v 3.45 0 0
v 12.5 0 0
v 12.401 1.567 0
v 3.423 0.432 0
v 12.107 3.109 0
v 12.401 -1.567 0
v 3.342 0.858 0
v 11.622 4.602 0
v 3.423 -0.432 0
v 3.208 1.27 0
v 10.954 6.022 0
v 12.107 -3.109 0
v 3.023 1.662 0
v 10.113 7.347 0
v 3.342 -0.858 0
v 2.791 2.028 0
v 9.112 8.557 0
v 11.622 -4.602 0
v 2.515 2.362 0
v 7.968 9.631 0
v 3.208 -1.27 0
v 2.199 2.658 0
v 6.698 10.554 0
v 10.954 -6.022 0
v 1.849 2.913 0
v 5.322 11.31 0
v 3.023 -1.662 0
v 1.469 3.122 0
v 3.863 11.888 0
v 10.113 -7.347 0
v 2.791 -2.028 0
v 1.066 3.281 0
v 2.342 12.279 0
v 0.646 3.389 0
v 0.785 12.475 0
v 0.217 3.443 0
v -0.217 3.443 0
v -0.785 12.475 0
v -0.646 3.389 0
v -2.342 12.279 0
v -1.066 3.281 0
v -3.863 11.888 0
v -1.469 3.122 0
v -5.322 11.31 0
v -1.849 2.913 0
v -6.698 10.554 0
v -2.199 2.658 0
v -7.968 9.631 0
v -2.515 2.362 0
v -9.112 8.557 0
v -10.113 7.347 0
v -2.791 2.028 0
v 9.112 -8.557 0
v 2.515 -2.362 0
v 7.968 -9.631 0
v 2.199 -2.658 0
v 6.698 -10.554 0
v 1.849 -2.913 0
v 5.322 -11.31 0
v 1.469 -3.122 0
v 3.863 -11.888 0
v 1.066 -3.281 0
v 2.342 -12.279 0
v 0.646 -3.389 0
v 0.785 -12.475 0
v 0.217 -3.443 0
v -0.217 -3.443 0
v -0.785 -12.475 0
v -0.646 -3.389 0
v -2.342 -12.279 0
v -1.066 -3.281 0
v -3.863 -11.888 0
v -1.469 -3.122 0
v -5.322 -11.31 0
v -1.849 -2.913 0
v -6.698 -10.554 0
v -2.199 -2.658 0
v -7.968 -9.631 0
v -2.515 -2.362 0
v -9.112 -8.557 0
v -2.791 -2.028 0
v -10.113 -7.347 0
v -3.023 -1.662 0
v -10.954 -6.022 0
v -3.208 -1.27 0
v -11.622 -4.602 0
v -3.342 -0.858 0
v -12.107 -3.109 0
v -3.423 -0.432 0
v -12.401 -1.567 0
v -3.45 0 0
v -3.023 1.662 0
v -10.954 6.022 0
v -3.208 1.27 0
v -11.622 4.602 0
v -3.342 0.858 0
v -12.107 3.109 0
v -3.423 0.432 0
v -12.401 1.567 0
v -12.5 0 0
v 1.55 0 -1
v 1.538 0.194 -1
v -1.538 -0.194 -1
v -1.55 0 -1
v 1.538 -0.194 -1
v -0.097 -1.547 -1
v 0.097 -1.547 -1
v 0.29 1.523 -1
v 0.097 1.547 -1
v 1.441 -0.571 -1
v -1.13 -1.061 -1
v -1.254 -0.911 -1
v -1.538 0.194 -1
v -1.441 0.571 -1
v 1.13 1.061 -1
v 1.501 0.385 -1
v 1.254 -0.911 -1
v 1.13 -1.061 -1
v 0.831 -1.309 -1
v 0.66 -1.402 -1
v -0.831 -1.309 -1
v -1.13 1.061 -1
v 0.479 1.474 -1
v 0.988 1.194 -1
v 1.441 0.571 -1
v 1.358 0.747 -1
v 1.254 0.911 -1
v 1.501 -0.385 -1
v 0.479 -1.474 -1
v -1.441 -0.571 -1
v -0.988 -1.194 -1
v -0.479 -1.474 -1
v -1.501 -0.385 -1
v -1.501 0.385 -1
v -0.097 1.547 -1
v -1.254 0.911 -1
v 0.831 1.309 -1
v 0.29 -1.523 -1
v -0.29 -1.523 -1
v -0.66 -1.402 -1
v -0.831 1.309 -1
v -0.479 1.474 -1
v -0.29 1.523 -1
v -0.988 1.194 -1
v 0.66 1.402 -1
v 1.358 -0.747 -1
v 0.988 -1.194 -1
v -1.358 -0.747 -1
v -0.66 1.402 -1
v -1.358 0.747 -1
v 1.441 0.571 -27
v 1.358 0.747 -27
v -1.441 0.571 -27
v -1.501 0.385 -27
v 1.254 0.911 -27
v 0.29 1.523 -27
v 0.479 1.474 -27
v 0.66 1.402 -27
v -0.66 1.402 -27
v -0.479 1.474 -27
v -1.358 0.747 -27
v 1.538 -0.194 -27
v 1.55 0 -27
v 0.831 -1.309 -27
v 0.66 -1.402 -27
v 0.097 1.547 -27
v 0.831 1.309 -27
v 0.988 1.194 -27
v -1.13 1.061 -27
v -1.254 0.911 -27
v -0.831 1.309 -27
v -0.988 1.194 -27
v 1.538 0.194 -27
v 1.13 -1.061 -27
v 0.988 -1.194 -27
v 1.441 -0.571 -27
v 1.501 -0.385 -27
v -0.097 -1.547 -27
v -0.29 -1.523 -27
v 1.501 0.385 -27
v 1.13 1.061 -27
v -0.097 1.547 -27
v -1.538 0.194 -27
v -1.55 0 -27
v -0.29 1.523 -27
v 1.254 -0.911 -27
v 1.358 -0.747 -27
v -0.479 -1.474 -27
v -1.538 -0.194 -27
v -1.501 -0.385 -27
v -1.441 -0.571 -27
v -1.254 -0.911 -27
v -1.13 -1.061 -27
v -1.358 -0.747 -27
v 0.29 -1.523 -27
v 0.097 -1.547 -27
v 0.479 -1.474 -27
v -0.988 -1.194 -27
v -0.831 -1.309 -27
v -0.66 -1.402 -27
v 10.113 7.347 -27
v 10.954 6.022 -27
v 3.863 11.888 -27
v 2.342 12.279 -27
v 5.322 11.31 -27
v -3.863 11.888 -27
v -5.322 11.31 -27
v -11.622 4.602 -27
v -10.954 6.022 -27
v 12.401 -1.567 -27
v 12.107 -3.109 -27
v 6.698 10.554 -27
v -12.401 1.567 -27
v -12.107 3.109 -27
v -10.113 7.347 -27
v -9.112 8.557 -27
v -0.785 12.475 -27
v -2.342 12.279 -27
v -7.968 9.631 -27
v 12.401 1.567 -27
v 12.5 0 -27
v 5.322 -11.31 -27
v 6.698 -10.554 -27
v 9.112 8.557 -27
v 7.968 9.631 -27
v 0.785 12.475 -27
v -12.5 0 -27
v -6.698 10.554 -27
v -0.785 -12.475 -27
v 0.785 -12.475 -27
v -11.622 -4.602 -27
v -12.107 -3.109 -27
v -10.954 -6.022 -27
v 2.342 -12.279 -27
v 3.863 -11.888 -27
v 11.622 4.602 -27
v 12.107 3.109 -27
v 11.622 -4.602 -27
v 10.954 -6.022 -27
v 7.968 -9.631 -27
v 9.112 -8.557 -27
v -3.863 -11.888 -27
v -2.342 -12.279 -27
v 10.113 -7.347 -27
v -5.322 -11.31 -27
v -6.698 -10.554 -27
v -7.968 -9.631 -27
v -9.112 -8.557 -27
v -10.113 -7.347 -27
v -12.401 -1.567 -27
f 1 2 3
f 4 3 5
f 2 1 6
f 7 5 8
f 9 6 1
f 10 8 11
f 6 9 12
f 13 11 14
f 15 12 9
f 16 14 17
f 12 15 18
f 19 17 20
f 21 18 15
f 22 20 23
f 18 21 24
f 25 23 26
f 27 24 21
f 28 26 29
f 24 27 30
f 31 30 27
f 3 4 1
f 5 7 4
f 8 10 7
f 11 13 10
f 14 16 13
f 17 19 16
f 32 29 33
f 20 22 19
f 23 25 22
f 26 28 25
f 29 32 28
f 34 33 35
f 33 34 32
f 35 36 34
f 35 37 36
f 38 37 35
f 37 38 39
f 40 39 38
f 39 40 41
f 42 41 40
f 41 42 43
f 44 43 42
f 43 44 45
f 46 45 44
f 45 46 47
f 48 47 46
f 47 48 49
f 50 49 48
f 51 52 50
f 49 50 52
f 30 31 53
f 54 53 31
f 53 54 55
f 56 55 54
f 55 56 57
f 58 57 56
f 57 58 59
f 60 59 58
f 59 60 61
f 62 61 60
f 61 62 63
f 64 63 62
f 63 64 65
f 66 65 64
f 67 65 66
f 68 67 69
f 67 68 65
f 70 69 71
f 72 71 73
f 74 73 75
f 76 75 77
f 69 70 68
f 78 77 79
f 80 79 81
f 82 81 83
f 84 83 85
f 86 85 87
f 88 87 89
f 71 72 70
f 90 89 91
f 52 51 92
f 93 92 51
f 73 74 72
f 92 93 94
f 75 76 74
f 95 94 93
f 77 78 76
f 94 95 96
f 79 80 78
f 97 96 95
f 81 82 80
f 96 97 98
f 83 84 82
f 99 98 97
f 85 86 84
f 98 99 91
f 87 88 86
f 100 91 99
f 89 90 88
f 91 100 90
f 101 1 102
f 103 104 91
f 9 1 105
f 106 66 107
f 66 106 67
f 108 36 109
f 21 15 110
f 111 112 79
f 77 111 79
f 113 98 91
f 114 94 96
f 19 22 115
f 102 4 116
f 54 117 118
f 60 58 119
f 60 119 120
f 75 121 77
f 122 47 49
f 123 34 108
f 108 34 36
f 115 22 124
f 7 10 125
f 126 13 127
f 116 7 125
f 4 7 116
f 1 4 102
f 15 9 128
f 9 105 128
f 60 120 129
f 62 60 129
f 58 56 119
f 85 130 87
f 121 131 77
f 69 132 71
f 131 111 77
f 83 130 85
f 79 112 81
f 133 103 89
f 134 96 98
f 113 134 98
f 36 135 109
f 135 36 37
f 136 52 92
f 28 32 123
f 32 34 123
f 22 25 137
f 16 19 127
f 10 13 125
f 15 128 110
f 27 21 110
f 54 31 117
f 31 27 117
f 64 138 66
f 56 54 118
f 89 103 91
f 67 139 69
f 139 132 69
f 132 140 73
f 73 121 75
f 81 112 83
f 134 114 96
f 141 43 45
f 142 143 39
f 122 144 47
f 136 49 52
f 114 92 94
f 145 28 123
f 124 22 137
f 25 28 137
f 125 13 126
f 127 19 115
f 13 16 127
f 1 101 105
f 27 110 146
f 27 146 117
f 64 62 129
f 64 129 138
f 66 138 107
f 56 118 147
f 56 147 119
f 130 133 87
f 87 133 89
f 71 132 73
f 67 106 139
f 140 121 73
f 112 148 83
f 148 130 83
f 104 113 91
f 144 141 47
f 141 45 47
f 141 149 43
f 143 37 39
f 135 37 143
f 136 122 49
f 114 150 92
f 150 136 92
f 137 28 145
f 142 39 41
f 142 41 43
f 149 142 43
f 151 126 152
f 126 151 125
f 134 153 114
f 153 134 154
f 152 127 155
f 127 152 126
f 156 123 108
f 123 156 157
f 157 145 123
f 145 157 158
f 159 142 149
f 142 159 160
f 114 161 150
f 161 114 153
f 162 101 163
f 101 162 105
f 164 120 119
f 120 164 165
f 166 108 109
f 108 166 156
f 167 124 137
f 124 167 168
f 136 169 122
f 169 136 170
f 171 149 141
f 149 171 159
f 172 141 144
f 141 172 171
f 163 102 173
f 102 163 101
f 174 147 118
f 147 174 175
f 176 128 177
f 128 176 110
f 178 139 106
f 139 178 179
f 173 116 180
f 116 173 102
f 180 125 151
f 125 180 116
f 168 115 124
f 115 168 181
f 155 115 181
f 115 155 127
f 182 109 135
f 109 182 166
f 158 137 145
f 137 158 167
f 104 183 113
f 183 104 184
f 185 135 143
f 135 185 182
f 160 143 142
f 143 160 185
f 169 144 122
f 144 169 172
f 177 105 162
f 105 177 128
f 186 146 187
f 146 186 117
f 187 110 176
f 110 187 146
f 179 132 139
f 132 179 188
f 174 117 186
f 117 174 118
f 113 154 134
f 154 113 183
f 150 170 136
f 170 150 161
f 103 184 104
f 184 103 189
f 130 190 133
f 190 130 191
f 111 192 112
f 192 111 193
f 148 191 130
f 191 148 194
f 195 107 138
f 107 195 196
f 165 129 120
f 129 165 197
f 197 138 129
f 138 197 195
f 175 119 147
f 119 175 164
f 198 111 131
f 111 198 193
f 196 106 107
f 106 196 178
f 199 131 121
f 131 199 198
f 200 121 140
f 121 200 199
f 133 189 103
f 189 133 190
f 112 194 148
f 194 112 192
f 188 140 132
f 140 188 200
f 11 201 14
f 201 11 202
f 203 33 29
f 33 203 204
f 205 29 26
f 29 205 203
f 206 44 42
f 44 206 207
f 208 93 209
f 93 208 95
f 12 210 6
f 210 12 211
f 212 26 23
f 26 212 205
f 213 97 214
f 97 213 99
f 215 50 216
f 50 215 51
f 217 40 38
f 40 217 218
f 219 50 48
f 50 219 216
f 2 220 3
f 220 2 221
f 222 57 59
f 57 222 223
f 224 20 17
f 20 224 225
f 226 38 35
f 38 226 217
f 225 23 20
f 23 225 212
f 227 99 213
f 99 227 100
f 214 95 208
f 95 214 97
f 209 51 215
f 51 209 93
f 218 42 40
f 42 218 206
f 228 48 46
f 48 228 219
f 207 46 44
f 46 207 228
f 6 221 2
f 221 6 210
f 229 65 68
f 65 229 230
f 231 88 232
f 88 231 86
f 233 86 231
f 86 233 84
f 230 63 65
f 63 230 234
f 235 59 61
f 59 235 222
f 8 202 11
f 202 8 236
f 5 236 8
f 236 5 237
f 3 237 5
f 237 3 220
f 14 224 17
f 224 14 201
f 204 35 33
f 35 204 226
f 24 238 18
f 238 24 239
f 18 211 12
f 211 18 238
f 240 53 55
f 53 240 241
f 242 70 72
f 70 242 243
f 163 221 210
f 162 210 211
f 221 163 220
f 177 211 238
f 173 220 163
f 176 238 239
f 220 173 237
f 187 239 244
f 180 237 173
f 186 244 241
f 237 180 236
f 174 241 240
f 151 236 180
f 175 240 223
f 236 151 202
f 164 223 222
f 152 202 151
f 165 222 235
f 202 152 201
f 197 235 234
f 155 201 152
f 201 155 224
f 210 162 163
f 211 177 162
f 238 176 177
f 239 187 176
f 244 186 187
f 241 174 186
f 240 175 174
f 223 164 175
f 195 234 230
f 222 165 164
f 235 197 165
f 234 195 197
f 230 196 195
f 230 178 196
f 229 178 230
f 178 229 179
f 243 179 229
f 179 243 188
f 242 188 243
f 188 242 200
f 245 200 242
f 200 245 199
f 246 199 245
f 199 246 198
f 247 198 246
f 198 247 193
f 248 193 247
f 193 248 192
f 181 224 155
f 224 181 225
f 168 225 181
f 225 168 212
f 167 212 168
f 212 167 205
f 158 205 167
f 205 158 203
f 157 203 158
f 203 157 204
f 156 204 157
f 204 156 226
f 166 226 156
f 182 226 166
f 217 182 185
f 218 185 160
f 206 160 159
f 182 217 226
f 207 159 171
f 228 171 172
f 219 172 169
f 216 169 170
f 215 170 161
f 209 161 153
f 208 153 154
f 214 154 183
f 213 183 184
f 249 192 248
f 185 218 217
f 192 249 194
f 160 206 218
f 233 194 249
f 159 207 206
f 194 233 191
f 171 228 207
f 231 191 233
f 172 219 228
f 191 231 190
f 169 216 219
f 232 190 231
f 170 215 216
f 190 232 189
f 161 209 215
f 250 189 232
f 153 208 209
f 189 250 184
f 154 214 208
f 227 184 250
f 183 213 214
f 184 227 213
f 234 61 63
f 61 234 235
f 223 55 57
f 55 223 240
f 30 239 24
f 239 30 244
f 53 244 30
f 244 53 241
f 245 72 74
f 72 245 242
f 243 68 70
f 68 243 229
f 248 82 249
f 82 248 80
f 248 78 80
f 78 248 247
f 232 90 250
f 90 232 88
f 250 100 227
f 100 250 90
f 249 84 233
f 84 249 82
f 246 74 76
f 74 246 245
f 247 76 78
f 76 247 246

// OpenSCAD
$fn = 50;

difference() {
	union() {
		translate(v = [0, 0, -27.0]) {
			cylinder(h = 27, r = 12.5);
		}
	}
	union() {
		translate(v = [0, 0, 0]) {
			rotate(a = [0, 0, 0]) {
				difference() {
					union() {
						translate(v = [0, 0, -30.0]) {
							cylinder(h = 30, r = 1.25);
						}
						translate(v = [0, 0, -1.0]) {
							cylinder(h = 1.0, r1 = 1.55, r2 = 3.45);
						}
						translate(v = [0, 0, -30.0]) {
							cylinder(h = 30, r = 1.55);
						}
						translate(v = [0, 0, -30.0]) {
							cylinder(h = 30, r = 1.25);
						}
					}
					union();
				}
			}
		}
	}
}
